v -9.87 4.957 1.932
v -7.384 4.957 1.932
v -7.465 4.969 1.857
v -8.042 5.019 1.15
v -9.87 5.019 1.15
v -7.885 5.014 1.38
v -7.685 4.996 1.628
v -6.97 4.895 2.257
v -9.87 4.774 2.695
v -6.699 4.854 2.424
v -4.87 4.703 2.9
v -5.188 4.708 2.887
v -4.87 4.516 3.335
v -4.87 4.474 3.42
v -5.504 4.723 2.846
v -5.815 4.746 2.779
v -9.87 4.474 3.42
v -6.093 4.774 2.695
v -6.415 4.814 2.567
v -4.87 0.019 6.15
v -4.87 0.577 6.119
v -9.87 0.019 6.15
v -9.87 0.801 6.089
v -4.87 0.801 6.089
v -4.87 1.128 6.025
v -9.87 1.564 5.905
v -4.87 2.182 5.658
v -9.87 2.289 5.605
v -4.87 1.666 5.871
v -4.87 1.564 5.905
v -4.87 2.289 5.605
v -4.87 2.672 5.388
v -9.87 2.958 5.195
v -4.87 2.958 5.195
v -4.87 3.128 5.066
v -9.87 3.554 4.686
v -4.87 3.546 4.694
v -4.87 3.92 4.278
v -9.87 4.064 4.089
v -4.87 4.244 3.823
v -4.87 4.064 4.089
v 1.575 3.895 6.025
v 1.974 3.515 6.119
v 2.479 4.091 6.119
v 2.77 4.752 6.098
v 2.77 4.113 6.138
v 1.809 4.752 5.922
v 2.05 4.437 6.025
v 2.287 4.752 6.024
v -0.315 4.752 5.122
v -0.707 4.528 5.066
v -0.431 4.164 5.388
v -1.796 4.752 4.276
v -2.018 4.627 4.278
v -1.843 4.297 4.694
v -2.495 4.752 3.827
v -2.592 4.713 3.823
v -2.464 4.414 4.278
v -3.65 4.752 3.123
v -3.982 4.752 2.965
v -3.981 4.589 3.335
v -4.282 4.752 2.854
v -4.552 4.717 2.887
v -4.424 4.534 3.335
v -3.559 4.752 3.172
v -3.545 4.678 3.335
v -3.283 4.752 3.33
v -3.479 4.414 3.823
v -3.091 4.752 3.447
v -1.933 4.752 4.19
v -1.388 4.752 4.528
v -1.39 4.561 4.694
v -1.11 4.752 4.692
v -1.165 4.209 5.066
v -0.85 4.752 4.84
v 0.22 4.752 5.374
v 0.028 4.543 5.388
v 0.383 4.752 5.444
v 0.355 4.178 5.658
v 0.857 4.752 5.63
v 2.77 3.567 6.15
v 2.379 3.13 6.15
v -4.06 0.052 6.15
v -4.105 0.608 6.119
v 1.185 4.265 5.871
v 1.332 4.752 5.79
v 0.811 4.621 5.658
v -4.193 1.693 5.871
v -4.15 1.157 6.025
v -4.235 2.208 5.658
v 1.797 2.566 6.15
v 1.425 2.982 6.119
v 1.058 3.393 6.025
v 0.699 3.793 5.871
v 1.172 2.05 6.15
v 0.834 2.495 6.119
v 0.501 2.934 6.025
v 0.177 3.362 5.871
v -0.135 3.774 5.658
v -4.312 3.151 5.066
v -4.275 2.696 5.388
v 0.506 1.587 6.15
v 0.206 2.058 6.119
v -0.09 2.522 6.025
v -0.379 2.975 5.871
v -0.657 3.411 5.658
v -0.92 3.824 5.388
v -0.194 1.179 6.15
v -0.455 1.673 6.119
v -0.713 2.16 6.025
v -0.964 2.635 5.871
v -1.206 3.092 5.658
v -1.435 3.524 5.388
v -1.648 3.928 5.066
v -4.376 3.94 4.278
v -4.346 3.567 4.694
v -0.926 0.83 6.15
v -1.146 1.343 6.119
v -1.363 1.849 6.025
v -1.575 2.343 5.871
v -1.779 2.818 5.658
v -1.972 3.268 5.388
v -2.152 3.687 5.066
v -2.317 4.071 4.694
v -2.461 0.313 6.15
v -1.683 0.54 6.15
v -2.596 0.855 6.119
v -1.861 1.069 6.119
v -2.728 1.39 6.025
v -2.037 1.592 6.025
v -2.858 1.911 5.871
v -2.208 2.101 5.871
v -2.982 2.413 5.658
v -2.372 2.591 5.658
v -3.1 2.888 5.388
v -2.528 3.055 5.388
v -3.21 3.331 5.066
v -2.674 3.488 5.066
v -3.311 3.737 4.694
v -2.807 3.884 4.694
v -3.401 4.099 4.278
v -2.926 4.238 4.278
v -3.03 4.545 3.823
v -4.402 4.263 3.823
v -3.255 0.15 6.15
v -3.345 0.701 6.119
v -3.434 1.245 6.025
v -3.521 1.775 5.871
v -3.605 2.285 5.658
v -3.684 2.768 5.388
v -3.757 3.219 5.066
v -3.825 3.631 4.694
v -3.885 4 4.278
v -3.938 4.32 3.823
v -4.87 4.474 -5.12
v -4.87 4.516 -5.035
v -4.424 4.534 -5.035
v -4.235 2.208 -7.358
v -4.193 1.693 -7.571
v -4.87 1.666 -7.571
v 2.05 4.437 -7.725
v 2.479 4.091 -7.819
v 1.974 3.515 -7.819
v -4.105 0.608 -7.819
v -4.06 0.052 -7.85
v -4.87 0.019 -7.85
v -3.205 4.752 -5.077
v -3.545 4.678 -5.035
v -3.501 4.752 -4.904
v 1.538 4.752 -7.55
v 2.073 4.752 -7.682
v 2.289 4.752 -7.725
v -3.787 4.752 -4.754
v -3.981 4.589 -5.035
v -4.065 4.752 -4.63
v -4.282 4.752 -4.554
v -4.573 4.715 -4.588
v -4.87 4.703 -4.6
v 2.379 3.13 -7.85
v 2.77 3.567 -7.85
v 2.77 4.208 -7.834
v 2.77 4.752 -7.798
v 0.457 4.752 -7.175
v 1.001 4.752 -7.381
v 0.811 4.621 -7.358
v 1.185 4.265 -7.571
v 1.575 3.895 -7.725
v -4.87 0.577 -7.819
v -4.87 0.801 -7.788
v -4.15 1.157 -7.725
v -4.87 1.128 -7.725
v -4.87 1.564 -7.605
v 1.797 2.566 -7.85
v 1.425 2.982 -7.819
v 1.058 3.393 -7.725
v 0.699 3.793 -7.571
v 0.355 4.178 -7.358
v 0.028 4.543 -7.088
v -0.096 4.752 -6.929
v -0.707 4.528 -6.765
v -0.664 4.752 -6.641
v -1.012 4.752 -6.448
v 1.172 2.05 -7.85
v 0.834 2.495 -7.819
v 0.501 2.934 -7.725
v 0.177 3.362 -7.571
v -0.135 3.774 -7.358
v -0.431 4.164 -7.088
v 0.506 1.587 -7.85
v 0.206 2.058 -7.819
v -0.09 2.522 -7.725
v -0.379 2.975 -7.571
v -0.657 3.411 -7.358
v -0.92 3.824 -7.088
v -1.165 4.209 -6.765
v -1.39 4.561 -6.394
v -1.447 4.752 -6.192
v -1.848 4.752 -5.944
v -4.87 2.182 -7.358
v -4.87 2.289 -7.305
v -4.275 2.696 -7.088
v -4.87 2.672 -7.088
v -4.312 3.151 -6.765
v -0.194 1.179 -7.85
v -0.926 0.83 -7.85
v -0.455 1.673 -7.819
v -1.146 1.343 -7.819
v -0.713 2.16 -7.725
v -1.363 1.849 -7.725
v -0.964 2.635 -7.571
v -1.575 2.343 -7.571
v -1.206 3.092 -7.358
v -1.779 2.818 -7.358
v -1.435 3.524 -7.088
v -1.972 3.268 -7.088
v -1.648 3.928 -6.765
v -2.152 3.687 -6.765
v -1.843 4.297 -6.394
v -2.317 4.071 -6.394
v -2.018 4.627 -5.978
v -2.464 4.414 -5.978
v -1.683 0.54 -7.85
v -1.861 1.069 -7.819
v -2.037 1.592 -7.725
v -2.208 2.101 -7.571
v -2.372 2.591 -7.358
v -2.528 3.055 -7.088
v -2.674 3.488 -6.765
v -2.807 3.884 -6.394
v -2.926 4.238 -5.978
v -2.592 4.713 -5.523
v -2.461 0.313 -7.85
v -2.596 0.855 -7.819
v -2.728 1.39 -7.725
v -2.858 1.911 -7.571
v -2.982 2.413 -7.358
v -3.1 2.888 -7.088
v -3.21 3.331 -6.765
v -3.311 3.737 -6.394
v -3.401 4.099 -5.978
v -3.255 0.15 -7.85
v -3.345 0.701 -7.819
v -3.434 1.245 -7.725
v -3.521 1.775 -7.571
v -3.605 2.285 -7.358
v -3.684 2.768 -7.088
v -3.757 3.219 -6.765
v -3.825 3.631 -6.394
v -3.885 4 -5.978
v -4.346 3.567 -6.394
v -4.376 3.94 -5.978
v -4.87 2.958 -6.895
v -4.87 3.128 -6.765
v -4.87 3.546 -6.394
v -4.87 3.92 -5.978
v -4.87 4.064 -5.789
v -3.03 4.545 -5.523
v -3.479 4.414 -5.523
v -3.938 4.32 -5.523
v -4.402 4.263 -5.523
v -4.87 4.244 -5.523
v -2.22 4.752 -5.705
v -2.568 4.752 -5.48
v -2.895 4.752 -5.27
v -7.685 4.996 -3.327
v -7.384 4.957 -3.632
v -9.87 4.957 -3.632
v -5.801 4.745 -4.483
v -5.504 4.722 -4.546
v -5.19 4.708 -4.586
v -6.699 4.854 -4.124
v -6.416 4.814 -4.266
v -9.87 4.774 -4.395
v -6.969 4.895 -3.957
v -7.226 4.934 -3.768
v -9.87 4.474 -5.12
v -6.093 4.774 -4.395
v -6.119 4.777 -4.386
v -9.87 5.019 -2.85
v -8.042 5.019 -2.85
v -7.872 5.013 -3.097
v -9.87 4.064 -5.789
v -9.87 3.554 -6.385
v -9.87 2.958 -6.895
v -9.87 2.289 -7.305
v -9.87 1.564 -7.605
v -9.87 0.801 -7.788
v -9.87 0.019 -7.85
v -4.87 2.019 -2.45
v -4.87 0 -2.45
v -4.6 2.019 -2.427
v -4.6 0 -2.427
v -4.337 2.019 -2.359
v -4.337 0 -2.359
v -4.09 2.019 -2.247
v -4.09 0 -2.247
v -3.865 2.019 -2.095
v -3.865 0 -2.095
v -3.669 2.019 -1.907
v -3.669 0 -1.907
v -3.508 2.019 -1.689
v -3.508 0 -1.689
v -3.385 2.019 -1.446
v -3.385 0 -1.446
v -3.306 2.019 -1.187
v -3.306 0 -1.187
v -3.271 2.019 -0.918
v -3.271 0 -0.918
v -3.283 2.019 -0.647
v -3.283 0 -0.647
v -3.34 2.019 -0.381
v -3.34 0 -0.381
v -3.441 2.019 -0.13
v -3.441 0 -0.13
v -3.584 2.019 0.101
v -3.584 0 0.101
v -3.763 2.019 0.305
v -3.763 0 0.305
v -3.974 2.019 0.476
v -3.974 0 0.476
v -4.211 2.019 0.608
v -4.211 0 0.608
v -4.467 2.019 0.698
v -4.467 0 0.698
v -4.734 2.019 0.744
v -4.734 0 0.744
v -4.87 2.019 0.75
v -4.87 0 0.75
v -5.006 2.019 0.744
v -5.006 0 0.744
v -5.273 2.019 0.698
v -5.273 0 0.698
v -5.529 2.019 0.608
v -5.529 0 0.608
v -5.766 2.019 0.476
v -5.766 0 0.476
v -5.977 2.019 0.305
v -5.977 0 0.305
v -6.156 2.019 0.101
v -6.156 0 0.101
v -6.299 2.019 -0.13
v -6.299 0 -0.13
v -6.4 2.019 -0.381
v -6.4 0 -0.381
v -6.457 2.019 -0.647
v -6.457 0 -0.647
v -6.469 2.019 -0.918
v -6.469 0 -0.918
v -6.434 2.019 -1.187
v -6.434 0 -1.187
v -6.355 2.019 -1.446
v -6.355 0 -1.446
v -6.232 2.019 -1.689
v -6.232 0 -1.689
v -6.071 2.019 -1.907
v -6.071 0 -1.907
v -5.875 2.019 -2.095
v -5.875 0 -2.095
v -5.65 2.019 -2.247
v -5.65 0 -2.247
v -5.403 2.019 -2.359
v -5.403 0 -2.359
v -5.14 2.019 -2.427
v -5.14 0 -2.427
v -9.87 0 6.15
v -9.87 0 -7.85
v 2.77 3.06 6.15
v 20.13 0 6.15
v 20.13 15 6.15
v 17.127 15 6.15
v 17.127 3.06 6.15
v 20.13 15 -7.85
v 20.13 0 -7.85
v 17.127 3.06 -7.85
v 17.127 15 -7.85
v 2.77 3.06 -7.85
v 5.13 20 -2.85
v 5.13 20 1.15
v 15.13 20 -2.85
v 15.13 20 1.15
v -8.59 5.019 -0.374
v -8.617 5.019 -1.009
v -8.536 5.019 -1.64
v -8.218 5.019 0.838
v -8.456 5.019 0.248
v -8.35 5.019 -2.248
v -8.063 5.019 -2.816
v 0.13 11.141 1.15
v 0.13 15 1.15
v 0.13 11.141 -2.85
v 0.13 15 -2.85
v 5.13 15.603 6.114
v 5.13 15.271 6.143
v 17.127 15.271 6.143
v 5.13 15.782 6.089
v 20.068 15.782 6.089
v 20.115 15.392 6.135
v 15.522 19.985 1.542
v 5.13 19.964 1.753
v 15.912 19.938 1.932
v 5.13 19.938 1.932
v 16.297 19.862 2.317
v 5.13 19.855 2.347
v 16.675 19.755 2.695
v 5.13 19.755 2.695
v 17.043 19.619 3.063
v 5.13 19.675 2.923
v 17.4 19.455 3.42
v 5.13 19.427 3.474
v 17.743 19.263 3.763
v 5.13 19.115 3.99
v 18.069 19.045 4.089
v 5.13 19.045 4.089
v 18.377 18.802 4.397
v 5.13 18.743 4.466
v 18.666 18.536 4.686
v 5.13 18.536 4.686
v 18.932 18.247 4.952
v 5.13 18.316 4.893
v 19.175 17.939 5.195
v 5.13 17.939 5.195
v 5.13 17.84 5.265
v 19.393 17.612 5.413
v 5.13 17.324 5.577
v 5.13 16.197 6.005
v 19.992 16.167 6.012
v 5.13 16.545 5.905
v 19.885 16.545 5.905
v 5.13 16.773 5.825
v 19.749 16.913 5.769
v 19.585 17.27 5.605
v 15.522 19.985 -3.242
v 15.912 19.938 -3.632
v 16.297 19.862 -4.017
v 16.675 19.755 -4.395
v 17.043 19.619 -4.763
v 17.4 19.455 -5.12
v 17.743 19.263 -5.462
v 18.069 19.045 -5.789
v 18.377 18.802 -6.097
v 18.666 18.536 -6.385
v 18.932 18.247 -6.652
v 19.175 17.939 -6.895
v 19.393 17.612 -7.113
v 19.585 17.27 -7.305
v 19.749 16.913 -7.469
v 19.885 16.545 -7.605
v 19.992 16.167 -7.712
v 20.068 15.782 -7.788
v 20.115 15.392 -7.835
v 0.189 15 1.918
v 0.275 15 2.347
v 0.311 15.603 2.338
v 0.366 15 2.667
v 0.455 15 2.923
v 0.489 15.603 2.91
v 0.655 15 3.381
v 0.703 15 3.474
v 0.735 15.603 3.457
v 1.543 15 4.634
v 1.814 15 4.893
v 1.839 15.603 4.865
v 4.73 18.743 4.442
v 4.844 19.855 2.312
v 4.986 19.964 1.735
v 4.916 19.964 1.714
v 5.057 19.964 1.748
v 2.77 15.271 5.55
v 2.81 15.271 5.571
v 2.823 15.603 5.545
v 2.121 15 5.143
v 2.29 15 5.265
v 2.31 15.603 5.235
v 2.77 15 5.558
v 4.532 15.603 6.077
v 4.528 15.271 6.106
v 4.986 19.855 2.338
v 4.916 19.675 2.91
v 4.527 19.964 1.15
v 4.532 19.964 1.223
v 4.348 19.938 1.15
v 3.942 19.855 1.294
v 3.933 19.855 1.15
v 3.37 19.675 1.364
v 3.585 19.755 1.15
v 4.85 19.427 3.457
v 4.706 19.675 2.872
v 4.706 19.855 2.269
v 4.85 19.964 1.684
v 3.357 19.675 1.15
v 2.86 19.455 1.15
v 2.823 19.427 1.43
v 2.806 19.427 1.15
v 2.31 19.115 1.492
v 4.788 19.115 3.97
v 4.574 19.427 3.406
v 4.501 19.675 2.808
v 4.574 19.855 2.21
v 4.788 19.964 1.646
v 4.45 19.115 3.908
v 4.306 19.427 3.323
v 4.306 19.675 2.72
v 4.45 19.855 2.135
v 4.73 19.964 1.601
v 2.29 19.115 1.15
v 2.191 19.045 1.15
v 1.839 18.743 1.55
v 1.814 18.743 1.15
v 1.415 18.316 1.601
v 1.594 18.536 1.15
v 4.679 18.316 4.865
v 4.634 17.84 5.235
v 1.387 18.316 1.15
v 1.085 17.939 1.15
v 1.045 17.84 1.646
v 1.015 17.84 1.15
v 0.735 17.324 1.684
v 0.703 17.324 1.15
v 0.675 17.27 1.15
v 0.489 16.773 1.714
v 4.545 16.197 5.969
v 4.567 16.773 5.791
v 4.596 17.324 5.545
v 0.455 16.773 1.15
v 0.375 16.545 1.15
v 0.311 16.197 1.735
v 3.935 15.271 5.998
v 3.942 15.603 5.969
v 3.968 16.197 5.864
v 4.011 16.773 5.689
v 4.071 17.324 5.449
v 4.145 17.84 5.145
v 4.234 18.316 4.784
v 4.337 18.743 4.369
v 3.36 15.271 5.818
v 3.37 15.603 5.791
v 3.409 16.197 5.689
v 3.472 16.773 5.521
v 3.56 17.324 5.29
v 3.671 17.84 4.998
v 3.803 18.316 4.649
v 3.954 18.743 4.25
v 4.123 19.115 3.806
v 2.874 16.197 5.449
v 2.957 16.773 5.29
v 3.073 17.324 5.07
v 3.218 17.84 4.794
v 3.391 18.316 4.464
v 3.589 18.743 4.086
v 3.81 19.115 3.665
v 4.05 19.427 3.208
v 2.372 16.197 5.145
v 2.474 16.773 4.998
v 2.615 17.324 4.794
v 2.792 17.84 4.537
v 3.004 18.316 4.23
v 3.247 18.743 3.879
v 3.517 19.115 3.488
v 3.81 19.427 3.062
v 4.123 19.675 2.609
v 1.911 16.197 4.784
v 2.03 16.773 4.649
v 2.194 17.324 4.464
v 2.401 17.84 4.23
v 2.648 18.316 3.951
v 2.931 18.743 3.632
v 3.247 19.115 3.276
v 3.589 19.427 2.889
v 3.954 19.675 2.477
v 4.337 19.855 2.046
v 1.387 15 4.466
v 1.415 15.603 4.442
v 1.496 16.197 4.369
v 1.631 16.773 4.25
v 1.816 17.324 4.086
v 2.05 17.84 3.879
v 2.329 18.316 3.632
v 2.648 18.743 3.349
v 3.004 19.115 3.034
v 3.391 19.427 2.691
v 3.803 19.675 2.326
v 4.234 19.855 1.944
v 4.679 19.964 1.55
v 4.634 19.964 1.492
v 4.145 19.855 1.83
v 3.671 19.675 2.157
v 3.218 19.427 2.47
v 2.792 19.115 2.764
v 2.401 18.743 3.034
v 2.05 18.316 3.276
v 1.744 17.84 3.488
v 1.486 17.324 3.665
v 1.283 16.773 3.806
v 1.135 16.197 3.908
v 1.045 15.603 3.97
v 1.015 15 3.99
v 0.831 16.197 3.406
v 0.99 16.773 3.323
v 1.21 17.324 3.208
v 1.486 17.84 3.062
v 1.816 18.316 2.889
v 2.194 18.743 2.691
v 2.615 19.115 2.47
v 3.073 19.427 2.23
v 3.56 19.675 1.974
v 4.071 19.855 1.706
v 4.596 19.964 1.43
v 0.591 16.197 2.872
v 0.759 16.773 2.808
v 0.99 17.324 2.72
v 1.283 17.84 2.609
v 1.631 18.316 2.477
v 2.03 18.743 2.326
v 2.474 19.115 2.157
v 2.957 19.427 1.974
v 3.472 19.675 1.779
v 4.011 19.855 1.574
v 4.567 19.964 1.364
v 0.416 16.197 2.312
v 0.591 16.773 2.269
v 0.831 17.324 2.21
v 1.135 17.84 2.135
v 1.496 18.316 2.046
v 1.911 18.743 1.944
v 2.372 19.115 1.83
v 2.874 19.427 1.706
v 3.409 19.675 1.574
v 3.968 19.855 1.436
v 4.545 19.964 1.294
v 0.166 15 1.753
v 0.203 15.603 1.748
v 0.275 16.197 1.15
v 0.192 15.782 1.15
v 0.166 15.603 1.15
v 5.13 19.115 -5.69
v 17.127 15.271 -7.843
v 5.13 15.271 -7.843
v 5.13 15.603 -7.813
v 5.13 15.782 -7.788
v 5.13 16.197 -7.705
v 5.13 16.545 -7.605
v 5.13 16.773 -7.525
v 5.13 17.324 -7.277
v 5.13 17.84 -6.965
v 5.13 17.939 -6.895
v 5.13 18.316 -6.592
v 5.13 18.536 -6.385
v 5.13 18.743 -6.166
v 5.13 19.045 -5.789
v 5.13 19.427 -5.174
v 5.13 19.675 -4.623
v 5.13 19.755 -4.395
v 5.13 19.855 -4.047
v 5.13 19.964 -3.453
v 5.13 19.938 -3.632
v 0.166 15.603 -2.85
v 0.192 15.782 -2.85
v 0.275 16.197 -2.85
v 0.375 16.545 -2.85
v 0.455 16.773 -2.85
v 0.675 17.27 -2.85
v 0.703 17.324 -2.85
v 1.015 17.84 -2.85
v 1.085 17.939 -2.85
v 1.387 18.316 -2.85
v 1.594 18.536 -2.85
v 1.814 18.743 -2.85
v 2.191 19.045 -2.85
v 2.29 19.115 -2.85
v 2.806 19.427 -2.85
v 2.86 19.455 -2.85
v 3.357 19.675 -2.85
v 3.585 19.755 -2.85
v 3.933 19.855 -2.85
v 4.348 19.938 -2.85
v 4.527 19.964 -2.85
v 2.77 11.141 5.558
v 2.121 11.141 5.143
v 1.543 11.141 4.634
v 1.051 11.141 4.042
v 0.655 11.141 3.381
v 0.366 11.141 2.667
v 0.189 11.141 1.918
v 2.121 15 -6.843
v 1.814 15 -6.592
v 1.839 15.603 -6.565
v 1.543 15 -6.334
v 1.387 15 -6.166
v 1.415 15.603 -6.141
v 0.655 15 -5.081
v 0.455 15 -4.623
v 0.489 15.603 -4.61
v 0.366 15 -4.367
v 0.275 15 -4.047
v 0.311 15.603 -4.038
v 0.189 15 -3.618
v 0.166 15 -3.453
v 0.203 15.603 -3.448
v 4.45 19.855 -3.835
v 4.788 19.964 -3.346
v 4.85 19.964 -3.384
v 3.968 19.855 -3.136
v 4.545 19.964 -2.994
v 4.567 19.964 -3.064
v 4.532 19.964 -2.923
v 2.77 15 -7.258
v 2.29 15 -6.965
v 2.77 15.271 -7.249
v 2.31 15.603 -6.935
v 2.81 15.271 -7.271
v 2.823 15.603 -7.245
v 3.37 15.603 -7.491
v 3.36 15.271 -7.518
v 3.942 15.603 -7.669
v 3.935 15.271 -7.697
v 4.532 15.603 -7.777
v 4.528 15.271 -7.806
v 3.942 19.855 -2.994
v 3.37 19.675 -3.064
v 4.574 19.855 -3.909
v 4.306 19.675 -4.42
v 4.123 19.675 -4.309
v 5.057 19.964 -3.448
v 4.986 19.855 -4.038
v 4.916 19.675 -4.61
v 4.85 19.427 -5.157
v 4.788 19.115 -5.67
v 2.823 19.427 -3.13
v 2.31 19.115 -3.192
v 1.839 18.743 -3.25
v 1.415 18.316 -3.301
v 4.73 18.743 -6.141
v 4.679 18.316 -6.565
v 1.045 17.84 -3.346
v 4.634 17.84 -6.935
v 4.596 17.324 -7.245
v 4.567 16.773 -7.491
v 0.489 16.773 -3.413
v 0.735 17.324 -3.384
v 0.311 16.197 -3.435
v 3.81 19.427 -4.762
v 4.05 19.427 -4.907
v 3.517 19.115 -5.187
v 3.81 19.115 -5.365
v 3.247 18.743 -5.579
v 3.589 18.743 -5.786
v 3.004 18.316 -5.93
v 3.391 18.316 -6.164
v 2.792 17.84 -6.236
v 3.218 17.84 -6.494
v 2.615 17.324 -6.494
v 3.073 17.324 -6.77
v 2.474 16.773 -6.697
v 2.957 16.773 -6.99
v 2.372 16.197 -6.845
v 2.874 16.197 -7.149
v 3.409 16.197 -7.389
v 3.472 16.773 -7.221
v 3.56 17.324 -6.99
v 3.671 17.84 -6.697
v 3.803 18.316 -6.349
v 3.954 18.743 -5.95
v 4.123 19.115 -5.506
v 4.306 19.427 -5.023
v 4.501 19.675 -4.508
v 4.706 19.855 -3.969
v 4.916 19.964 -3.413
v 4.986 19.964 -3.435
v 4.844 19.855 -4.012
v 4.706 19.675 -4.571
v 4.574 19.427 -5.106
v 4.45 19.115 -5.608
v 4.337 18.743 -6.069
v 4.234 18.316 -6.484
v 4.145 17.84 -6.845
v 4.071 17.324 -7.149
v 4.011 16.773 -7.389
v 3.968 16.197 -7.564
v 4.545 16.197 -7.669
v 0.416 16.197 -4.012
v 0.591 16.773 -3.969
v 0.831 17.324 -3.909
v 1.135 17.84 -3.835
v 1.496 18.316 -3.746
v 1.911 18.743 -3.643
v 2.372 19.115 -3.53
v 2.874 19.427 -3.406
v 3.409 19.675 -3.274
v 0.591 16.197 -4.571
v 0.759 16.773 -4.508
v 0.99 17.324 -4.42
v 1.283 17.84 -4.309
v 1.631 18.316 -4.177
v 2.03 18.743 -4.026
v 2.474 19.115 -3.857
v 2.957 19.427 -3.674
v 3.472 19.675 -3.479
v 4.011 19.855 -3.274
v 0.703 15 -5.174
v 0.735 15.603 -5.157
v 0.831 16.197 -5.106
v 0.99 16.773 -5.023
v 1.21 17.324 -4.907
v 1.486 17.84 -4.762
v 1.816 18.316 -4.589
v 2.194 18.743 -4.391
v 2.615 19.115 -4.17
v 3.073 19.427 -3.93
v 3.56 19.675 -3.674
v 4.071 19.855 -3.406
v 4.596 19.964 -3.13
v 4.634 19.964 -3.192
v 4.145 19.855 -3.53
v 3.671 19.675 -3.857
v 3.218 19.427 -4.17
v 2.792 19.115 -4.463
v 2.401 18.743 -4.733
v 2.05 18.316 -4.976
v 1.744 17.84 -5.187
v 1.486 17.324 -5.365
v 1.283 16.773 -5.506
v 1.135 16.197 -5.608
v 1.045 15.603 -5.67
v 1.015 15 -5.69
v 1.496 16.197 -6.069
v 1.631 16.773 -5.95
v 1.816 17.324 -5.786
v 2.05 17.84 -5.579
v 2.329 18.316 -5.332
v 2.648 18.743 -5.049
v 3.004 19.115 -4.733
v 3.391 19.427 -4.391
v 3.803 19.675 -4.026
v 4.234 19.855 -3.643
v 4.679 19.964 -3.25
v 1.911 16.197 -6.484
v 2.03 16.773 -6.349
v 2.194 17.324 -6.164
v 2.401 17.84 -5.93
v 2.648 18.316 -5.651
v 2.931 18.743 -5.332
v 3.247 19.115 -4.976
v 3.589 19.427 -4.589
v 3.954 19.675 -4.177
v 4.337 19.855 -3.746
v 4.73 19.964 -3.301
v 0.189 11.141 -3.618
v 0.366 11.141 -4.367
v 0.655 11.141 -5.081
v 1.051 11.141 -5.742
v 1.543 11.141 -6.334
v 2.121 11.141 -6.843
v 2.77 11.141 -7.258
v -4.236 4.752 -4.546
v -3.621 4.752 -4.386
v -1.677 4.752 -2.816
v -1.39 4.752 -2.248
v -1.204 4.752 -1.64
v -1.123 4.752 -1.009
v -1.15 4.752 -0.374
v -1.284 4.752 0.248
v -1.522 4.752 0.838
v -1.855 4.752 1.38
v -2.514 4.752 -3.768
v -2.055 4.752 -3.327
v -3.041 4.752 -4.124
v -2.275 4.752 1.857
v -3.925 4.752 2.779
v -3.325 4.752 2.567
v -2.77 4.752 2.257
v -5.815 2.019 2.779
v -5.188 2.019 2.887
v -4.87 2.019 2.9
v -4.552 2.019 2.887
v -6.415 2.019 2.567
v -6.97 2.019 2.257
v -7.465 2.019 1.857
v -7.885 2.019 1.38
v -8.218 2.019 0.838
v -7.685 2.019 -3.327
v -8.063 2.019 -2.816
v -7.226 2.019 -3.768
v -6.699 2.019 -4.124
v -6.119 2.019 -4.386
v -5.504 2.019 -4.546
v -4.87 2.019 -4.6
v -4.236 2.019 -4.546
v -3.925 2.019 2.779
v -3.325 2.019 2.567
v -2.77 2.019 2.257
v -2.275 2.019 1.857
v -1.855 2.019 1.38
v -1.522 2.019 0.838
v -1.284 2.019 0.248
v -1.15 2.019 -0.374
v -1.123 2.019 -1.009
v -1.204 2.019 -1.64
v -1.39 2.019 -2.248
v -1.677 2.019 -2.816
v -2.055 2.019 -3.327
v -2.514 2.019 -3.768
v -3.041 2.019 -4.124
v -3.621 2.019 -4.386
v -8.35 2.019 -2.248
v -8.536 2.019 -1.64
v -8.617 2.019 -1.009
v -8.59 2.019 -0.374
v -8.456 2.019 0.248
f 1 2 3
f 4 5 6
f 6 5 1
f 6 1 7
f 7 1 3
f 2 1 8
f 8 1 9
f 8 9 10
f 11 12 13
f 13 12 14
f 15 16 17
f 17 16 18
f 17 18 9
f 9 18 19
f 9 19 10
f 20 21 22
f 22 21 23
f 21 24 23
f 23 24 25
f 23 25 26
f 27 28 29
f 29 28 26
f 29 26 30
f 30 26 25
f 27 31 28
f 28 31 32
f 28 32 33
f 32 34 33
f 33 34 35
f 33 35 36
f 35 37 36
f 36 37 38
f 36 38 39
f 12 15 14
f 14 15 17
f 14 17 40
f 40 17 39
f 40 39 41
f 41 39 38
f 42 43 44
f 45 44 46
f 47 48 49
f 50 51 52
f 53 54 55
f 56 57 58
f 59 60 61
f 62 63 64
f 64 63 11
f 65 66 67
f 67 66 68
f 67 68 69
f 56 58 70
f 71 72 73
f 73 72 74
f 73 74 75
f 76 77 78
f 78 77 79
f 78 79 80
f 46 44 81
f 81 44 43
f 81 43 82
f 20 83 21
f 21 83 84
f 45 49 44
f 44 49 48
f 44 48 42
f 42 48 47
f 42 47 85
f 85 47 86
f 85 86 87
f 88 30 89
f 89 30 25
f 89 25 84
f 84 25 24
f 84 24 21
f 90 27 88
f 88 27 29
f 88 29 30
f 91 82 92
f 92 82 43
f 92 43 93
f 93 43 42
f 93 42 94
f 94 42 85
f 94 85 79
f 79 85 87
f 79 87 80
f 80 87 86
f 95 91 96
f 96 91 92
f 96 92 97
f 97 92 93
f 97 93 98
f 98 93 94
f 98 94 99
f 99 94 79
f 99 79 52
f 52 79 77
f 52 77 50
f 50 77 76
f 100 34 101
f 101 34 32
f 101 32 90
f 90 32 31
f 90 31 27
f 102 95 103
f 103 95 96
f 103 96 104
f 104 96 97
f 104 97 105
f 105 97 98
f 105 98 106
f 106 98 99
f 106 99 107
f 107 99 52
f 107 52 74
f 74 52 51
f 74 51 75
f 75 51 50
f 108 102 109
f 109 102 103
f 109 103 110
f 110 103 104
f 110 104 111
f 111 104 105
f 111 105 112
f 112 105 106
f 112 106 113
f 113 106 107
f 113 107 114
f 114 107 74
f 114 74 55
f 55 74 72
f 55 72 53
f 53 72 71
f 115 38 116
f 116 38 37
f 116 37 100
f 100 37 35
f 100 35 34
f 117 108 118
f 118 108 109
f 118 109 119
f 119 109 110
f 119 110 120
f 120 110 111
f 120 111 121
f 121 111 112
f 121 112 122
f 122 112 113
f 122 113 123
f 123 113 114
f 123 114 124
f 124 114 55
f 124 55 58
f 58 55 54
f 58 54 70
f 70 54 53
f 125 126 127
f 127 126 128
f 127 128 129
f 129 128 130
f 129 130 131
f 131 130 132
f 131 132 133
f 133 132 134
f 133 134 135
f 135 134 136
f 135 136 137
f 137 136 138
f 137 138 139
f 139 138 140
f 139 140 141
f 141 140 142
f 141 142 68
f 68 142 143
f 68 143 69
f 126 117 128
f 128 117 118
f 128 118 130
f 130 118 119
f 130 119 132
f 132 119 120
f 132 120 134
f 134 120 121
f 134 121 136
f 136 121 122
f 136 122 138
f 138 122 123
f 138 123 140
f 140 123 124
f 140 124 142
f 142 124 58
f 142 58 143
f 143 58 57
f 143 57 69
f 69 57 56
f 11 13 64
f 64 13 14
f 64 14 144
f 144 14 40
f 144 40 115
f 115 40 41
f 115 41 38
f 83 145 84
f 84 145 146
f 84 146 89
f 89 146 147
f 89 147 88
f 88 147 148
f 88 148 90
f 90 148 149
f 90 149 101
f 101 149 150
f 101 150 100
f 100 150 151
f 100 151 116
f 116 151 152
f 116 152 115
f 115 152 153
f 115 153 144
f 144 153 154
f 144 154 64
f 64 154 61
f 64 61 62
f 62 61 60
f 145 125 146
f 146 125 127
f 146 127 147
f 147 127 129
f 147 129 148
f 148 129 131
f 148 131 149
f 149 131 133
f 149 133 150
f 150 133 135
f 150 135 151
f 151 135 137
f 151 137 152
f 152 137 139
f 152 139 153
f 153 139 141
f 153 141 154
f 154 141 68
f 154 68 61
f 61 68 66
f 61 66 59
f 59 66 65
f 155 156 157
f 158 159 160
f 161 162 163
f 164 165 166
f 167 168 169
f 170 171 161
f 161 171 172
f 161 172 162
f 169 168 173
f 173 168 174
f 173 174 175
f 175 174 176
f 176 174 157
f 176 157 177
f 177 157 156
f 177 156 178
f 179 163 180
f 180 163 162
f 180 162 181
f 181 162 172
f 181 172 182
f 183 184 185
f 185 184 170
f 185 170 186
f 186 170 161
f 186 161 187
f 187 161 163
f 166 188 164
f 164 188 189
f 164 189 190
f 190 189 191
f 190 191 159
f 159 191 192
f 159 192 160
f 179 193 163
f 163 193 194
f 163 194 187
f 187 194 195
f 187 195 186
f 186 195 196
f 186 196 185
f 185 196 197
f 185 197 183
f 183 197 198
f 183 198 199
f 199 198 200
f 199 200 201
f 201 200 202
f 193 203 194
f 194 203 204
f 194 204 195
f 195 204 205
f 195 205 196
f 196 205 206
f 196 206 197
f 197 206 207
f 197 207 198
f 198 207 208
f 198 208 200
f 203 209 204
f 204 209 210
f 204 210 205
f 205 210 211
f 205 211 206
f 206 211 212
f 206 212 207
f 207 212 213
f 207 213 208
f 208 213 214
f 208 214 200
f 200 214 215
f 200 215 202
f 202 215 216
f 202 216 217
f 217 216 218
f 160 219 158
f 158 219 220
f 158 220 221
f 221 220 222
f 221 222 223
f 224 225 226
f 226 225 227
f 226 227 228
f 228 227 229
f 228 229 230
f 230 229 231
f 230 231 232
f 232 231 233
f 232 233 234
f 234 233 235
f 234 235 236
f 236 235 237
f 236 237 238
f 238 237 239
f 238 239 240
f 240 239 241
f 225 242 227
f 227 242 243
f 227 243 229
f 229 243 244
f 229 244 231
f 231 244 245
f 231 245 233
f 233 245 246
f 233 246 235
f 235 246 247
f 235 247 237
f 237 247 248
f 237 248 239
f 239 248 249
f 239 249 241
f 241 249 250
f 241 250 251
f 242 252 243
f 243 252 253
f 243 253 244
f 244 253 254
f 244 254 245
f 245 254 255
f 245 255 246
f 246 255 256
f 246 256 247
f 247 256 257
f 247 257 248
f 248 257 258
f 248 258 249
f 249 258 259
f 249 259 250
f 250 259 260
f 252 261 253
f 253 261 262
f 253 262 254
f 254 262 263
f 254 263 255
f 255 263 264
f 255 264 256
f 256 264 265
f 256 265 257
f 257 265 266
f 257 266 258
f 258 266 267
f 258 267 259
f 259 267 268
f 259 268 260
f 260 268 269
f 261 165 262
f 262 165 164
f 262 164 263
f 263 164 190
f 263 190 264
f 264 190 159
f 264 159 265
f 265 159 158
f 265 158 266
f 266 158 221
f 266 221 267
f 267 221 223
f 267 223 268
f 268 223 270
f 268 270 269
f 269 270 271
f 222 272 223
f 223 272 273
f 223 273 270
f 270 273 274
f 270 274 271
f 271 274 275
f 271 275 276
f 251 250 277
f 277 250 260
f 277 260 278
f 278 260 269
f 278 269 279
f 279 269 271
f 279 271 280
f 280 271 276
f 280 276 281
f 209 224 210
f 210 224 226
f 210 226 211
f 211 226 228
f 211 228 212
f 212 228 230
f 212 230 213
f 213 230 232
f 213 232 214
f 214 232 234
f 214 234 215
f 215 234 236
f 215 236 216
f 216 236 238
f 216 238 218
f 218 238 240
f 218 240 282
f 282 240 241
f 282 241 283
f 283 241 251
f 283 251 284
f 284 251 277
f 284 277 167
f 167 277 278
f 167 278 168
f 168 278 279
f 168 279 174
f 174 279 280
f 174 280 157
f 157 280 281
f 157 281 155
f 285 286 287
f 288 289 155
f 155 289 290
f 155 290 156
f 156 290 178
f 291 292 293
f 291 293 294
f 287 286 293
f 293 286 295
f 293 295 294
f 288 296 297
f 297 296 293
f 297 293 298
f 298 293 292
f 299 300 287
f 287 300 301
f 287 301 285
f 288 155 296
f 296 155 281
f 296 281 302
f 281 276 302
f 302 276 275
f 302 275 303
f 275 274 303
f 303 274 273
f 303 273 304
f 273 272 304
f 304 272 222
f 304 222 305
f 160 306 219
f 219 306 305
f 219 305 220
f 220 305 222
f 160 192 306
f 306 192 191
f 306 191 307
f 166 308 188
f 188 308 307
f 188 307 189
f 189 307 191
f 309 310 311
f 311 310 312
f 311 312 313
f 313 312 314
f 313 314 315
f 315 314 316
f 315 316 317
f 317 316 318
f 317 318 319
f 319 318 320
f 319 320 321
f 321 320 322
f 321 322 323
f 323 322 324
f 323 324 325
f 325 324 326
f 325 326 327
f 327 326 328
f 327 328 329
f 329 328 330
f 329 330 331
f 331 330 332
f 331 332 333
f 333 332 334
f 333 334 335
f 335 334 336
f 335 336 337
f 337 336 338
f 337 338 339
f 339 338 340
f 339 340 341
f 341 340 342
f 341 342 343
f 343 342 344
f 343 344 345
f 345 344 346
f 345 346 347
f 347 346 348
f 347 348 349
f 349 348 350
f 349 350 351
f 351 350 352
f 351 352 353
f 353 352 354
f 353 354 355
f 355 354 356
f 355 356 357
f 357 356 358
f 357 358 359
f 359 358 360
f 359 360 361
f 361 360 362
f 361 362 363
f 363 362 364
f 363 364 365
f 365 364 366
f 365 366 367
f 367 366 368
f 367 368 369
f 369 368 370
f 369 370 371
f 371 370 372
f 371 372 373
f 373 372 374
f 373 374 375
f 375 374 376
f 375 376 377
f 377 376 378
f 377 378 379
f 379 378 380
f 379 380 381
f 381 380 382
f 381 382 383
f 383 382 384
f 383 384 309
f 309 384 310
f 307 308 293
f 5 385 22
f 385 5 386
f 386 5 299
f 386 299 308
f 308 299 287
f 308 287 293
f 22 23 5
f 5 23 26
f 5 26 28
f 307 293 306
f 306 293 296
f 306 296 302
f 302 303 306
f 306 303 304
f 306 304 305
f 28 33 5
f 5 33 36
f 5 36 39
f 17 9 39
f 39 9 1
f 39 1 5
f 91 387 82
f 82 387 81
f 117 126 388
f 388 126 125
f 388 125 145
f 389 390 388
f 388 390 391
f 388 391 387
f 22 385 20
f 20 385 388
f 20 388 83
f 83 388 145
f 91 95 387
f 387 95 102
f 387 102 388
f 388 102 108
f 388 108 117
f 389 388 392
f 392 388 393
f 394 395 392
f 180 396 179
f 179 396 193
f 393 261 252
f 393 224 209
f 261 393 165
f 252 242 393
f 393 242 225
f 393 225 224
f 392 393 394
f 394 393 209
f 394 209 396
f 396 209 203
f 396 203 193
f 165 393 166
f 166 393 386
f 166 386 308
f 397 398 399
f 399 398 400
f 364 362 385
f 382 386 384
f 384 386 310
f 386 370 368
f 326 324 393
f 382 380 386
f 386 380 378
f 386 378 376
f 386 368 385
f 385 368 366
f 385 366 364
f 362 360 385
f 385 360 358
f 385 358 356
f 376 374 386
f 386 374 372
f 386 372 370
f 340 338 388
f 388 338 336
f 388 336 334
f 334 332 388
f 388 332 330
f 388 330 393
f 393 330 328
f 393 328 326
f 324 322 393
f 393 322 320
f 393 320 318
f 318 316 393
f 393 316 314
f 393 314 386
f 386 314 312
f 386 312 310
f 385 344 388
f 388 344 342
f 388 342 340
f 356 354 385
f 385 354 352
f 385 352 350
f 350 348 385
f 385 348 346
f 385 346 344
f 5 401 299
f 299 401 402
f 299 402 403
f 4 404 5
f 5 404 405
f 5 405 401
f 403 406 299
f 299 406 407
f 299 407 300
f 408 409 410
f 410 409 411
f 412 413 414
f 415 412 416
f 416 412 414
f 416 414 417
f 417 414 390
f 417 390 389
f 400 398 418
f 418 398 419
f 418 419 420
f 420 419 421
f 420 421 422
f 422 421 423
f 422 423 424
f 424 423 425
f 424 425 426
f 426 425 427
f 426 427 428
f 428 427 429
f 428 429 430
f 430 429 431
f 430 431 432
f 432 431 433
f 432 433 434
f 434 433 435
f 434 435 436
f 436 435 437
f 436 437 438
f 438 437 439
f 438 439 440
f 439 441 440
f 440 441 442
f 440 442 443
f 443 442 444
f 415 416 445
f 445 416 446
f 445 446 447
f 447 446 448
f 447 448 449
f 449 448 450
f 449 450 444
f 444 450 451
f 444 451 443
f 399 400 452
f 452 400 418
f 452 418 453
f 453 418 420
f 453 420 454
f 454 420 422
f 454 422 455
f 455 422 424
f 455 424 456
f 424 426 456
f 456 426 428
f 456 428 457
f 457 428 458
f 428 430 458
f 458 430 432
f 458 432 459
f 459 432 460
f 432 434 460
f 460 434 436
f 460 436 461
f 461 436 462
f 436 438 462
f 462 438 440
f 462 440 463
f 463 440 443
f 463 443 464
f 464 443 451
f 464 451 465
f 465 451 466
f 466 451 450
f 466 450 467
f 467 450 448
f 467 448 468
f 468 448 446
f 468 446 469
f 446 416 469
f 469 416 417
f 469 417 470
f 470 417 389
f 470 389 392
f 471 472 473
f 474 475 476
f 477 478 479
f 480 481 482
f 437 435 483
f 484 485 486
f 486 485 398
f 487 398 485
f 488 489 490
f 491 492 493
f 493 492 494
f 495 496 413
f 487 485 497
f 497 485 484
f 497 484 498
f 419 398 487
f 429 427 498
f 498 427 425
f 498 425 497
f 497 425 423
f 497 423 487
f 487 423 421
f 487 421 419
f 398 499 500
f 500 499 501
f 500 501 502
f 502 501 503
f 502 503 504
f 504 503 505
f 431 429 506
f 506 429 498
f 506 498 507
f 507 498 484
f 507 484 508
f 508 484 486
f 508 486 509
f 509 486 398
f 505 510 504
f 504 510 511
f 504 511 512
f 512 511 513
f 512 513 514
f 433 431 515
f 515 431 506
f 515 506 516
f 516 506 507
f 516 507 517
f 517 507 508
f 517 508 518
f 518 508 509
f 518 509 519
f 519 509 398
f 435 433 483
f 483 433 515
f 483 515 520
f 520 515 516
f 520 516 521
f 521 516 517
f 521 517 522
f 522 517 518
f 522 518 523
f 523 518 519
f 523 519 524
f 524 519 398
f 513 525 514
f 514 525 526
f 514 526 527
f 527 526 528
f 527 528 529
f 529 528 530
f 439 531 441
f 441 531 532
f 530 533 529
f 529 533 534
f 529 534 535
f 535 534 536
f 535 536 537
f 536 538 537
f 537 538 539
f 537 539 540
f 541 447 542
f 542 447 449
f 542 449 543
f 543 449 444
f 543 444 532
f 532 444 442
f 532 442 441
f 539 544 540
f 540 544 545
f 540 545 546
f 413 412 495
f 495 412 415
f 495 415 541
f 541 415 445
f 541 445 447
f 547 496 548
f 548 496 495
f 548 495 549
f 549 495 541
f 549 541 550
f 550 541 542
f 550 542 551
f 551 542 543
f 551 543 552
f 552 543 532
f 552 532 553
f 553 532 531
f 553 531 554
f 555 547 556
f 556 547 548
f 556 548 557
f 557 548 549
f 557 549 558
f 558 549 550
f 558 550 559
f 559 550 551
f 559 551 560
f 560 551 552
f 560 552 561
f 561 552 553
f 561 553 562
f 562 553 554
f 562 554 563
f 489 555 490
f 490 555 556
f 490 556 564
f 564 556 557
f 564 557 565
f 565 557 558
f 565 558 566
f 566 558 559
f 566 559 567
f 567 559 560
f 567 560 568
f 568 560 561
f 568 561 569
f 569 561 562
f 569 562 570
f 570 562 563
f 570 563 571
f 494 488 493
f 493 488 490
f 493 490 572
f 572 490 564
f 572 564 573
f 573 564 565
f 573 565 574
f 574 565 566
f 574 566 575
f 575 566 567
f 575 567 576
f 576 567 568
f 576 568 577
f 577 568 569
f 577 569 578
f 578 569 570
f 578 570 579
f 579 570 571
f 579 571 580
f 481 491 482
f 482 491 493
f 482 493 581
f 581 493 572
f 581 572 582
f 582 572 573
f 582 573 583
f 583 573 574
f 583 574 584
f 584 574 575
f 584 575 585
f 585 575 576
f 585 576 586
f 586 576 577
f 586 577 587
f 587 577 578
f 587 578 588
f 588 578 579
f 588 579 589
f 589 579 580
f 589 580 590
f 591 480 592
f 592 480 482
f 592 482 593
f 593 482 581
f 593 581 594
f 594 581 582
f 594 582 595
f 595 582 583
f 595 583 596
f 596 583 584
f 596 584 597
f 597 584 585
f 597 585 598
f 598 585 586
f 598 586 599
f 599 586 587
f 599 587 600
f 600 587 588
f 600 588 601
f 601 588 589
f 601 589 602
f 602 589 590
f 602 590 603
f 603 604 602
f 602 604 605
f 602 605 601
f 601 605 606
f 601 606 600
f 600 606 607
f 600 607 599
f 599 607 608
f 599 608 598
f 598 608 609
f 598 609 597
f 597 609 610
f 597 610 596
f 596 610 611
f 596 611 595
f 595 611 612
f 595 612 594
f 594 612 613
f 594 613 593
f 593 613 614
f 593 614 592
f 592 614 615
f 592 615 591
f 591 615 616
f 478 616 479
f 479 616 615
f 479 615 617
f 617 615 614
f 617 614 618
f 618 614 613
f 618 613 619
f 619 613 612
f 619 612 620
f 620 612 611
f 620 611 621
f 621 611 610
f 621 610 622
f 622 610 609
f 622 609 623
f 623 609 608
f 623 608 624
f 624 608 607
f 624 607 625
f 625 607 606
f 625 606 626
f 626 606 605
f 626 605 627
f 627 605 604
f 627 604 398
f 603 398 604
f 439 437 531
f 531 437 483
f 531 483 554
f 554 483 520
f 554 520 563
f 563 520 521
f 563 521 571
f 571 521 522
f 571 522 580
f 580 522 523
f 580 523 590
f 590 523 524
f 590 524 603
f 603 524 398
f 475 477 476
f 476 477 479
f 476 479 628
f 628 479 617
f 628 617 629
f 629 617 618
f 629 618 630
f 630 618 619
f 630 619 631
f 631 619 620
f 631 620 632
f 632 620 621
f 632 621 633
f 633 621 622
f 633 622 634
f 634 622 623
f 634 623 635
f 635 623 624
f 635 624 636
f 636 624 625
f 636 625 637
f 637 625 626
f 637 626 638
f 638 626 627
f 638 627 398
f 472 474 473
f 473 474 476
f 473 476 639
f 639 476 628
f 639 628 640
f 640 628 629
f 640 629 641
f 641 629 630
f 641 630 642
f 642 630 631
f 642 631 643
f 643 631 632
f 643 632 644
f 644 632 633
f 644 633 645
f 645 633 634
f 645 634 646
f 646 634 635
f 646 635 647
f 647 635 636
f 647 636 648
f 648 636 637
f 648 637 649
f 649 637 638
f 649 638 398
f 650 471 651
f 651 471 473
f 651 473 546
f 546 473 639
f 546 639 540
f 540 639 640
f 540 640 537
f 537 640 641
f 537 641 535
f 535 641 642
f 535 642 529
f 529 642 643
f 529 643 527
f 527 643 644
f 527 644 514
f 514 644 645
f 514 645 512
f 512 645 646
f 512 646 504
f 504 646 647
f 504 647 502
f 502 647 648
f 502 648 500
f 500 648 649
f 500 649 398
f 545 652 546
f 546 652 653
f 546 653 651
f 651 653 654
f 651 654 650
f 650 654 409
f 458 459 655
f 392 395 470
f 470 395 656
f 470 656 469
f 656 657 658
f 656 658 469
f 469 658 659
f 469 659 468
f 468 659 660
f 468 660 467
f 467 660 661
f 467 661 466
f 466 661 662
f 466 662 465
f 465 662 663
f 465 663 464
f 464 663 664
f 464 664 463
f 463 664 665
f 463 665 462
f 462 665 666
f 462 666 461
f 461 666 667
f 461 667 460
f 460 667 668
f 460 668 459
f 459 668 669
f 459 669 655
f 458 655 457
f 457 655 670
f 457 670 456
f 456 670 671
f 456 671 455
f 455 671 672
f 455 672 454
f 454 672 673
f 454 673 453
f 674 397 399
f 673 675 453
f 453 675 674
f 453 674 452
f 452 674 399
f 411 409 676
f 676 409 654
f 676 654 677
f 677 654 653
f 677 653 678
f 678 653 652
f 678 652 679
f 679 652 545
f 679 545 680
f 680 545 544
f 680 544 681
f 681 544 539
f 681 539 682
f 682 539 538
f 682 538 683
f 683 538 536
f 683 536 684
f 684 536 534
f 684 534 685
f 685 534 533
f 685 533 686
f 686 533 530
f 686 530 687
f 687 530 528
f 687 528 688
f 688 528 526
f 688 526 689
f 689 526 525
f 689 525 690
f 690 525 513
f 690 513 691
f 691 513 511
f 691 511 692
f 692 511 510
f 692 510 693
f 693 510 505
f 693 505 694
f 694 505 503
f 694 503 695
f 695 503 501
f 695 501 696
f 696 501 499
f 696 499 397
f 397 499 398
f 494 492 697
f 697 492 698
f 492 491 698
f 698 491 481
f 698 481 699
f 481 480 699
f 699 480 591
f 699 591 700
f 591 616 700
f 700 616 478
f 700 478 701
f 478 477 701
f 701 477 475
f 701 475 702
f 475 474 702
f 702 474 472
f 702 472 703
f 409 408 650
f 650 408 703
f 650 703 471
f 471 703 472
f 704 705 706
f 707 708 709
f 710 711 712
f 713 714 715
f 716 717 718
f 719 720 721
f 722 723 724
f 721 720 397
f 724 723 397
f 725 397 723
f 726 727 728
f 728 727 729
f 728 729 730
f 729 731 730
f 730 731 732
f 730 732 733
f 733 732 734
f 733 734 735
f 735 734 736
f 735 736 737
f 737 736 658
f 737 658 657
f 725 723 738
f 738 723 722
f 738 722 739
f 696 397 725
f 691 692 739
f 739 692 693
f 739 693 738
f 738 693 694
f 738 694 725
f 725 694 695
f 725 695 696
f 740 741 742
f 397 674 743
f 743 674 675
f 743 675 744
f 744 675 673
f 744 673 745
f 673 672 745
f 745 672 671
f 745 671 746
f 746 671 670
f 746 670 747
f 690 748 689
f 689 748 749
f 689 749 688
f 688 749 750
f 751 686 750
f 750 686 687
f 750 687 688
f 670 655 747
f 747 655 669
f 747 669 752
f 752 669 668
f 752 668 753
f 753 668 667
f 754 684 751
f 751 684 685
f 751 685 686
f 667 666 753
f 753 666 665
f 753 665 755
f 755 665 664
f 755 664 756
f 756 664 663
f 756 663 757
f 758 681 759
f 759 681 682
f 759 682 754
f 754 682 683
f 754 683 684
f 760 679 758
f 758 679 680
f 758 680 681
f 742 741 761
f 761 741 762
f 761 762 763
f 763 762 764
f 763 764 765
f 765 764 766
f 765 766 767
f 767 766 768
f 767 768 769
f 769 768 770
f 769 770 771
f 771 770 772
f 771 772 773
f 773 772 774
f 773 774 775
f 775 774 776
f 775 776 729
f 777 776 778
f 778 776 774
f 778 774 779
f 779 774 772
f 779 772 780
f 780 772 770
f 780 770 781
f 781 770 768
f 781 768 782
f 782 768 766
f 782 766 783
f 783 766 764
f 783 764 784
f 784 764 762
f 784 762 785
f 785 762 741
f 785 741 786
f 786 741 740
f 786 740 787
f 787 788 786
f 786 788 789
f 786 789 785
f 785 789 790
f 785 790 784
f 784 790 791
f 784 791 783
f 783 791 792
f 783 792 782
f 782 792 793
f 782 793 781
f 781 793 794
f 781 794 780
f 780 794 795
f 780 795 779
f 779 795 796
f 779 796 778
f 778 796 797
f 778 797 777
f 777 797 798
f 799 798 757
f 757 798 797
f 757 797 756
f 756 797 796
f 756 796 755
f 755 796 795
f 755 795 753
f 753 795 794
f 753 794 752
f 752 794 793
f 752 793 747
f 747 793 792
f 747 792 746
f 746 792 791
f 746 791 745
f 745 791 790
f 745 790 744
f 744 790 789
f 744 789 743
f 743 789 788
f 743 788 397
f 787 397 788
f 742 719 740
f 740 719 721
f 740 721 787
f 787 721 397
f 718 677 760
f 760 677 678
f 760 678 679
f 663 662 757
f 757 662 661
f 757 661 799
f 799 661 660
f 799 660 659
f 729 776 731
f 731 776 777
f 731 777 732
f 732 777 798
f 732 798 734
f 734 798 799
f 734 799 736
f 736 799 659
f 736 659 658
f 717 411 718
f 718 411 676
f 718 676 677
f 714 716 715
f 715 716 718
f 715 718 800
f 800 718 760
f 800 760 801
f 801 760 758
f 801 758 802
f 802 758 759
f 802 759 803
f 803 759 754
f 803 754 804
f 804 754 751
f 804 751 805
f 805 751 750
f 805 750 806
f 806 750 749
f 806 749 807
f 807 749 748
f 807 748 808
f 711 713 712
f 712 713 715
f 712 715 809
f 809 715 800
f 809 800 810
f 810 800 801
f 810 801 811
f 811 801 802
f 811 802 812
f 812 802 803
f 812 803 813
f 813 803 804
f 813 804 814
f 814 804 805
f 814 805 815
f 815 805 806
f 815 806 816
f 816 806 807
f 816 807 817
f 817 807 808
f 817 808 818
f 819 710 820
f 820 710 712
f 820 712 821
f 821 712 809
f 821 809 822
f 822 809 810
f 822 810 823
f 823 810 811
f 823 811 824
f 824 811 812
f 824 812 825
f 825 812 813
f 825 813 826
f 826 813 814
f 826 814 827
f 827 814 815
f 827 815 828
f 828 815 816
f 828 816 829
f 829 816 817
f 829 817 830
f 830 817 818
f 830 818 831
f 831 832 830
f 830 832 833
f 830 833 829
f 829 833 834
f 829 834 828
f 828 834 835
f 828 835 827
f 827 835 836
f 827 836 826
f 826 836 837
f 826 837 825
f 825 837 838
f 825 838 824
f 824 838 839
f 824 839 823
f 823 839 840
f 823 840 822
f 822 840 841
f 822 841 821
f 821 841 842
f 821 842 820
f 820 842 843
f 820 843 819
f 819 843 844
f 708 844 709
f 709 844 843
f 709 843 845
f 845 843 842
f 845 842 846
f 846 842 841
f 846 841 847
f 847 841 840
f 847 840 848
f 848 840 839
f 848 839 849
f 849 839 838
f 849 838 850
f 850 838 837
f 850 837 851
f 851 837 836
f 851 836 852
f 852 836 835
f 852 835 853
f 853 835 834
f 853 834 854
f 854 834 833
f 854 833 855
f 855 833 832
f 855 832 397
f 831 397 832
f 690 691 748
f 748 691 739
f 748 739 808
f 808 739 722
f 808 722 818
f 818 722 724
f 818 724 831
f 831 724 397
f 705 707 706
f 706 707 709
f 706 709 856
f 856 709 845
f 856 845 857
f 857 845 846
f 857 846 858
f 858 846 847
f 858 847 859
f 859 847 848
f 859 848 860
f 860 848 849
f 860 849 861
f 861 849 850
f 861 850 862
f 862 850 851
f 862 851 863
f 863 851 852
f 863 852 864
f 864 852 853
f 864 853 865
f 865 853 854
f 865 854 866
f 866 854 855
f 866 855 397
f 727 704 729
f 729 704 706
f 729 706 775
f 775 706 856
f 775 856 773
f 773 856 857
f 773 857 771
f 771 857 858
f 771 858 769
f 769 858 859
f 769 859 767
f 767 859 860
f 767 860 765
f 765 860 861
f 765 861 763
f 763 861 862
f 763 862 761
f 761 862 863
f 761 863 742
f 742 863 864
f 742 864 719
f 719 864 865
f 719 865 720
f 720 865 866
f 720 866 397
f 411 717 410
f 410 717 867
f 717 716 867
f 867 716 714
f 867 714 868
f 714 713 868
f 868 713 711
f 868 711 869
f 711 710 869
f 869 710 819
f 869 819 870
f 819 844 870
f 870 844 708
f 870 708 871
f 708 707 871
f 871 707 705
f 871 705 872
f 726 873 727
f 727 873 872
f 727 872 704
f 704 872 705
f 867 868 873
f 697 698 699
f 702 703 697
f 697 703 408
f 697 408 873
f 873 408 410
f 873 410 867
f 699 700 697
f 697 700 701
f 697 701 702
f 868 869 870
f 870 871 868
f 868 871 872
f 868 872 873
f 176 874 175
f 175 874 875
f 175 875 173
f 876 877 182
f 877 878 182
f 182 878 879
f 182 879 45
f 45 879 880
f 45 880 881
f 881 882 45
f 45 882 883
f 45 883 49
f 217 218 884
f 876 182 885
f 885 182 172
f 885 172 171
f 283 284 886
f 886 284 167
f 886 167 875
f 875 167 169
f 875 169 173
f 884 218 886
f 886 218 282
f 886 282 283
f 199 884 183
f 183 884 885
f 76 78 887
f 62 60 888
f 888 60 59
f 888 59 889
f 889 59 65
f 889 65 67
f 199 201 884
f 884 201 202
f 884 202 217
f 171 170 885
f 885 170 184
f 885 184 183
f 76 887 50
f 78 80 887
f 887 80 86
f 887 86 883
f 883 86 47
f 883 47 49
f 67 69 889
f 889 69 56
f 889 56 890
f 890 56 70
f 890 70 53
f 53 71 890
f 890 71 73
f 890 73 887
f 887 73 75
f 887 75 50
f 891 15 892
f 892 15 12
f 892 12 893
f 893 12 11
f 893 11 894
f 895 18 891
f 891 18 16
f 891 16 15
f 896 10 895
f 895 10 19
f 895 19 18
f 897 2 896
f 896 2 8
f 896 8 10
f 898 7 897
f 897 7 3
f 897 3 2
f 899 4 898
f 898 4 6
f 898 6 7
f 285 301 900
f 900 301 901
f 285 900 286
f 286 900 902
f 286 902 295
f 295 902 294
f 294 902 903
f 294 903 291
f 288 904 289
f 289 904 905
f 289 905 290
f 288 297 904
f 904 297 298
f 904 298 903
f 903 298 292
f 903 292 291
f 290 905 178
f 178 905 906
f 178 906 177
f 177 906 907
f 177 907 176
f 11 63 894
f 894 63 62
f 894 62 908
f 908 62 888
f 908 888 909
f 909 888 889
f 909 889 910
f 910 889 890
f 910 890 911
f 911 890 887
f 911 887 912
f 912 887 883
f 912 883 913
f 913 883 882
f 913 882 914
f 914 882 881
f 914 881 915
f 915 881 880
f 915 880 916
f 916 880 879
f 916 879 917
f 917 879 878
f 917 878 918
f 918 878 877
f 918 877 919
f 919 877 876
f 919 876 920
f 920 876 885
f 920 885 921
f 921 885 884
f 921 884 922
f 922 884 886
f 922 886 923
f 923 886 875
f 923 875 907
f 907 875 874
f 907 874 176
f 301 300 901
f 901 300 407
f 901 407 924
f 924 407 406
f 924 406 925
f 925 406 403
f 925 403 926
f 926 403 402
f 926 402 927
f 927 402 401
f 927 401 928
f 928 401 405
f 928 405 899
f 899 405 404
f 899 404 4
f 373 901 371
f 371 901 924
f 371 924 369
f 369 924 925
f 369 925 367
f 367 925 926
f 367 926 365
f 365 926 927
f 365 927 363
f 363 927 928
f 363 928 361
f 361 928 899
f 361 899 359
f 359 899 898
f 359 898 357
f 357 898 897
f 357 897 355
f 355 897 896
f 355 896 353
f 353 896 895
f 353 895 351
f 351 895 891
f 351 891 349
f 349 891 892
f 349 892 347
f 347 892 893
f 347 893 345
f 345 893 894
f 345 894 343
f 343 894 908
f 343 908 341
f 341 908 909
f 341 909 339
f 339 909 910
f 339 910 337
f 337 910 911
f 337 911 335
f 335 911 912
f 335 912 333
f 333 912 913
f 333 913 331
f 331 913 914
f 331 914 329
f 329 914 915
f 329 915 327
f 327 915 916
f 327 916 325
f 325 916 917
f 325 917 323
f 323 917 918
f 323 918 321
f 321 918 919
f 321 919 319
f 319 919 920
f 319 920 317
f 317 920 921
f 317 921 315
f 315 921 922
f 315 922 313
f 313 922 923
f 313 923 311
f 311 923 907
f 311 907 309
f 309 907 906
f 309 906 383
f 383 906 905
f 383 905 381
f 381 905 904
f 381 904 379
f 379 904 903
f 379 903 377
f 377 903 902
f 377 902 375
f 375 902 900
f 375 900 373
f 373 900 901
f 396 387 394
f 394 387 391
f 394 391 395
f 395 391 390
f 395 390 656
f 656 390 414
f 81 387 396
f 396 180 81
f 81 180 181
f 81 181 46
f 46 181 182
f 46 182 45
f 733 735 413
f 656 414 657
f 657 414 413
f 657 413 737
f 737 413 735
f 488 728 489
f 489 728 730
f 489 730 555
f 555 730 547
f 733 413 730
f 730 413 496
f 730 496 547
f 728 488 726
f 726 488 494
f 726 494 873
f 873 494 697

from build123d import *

# Parameters (mm, degrees)
SKETCH1_W               = 30
SKETCH1_H               = 14
BOSS_EXTRUDE1_DEPTH     = 20
SKETCH2_W               = 10
SKETCH2_H               = 14.981059247
CUT_EXTRUDE1_DEPTH      = 20
FILLET1_R               = 5
SKETCH3_W               = 16.938954743
SKETCH3_H               = 3.286131709
CUT_EXTRUDE2_DEPTH      = 20
SKETCH4_W               = 7.5
SKETCH4_H               = 10.24752105
CUT_EXTRUDE3_DEPTH      = 20
CUT_EXTRUDE5_DEPTH      = 20
CUT_EXTRUDE5_DEPTH_BACK = 20
SKETCH5_R               = 1.6
CUT_EXTRUDE6_DEPTH      = 5
CUT_EXTRUDE6_DEPTH_BACK = 3
SKETCH6_R               = 3.75
SKETCH8_W               = 10.467205443
SKETCH8_H               = 5.426445144
CUT_EXTRUDE8_DEPTH      = 20
SKETCH9_W               = 2.170946208
SKETCH9_H               = 10.24752105
CUT_EXTRUDE9_DEPTH      = 20
SKETCH10_W              = 14.357250264
SKETCH10_H              = 12.211649431
CUT_EXTRUDE12_DEPTH     = 20


with BuildPart() as part:
    # Sketch1 → Boss-Extrude1 (new body)
    with BuildSketch(Plane(origin=(0, 0, 0), x_dir=(1, 0, 0), z_dir=(0, 1, 0))):
        with Locations((5.130024125, 0.849928215)):
            Rectangle(SKETCH1_W, SKETCH1_H)
    extrude(amount=BOSS_EXTRUDE1_DEPTH)

    # Sketch2 → Cut-Extrude1 (cut)
    with BuildSketch(Plane.XY.offset(6.150071785)):
        with Locations((-4.869975875, 12.509470377)):
            Rectangle(SKETCH2_W, SKETCH2_H)
    extrude(amount=-CUT_EXTRUDE1_DEPTH, mode=Mode.SUBTRACT)

    # Fillet1
    fillet1_edges = [part.edges().sort_by_distance(p)[0] for p in [
        (20.130024125, 20, -0.849928215),
        (10.130024125, 20, 6.150071785),
        (0.130024125, 20, -0.849928215),
        (-4.869975875, 5.018940753, -7.849928215),
        (10.130024125, 20, -7.849928215),
        (0.130024125, 5.018940753, -0.849928215),
        (0.130024125, 12.509470377, -7.849928215),
        (-4.869975875, 5.018940753, 6.150071785),
        (0.130024125, 12.509470377, 6.150071785),
    ]]
    fillet(fillet1_edges, radius=FILLET1_R)

    # Sketch3 → Cut-Extrude2 (cut)
    with BuildSketch(Plane(origin=(0, 0, -7.849928215), x_dir=(-1, 0, 0), z_dir=(0, 0, -1))):
        with Locations((-4.226478324, 9.498403921)):
            Rectangle(SKETCH3_W, SKETCH3_H)
    extrude(amount=-CUT_EXTRUDE2_DEPTH, mode=Mode.SUBTRACT)

    # Sketch4 → Cut-Extrude3 (cut)
    with BuildSketch(Plane(origin=(0, 0, -7.849928215), x_dir=(-1, 0, 0), z_dir=(0, 0, -1))):
        with Locations((-8.880024125, 9.876239475)):
            Rectangle(SKETCH4_W, SKETCH4_H)
    extrude(amount=-CUT_EXTRUDE3_DEPTH, mode=Mode.SUBTRACT)

    # Sketch5 → Cut-Extrude5 (cut, two sides: drawn at the far end of the back side and taken through both)
    with BuildSketch(Plane(origin=(0, 5.018940753, 0), x_dir=(1, 0, 0), z_dir=(0, 1, 0)).offset(-CUT_EXTRUDE5_DEPTH_BACK)):
        with Locations(Location((-4.869975875, 0.849928215, 0), (0, 0, 270))):
            Circle(SKETCH5_R)
    extrude(amount=CUT_EXTRUDE5_DEPTH + CUT_EXTRUDE5_DEPTH_BACK, mode=Mode.SUBTRACT)

    # Sketch6 → Cut-Extrude6 (cut, two sides: drawn at the far end of the back side and taken through both)
    with BuildSketch(Plane(origin=(0, 5.018940753, 0), x_dir=(1, 0, 0), z_dir=(0, 1, 0)).offset(-CUT_EXTRUDE6_DEPTH_BACK)):
        with Locations(Location((-4.869975875, 0.849928215, 0), (0, 0, 270))):
            Circle(SKETCH6_R)
    extrude(amount=CUT_EXTRUDE6_DEPTH + CUT_EXTRUDE6_DEPTH_BACK, mode=Mode.SUBTRACT)

    # Sketch8 → Cut-Extrude8 (cut)
    with BuildSketch(Plane(origin=(0, 0, -7.849928215), x_dir=(-1, 0, 0), z_dir=(0, 0, -1))):
        with Locations((0.103578597, 7.465701522)):
            Rectangle(SKETCH8_W, SKETCH8_H)
    extrude(amount=-CUT_EXTRUDE8_DEPTH, mode=Mode.SUBTRACT)

    # Sketch9 → Cut-Extrude9 (cut)
    with BuildSketch(Plane(origin=(0, 0, -7.849928215), x_dir=(-1, 0, 0), z_dir=(0, 0, -1))):
        with Locations((-13.715497229, 9.876239475)):
            Rectangle(SKETCH9_W, SKETCH9_H)
    extrude(amount=-CUT_EXTRUDE9_DEPTH, mode=Mode.SUBTRACT)

    # Sketch10 → Cut-Extrude12 (cut)
    with BuildSketch(Plane(origin=(0, 0, -7.849928215), x_dir=(-1, 0, 0), z_dir=(0, 0, -1))):
        with Locations((-9.948498564, 9.165448936)):
            Rectangle(SKETCH10_W, SKETCH10_H)
    extrude(amount=-CUT_EXTRUDE12_DEPTH, mode=Mode.SUBTRACT)


solid = part.part
